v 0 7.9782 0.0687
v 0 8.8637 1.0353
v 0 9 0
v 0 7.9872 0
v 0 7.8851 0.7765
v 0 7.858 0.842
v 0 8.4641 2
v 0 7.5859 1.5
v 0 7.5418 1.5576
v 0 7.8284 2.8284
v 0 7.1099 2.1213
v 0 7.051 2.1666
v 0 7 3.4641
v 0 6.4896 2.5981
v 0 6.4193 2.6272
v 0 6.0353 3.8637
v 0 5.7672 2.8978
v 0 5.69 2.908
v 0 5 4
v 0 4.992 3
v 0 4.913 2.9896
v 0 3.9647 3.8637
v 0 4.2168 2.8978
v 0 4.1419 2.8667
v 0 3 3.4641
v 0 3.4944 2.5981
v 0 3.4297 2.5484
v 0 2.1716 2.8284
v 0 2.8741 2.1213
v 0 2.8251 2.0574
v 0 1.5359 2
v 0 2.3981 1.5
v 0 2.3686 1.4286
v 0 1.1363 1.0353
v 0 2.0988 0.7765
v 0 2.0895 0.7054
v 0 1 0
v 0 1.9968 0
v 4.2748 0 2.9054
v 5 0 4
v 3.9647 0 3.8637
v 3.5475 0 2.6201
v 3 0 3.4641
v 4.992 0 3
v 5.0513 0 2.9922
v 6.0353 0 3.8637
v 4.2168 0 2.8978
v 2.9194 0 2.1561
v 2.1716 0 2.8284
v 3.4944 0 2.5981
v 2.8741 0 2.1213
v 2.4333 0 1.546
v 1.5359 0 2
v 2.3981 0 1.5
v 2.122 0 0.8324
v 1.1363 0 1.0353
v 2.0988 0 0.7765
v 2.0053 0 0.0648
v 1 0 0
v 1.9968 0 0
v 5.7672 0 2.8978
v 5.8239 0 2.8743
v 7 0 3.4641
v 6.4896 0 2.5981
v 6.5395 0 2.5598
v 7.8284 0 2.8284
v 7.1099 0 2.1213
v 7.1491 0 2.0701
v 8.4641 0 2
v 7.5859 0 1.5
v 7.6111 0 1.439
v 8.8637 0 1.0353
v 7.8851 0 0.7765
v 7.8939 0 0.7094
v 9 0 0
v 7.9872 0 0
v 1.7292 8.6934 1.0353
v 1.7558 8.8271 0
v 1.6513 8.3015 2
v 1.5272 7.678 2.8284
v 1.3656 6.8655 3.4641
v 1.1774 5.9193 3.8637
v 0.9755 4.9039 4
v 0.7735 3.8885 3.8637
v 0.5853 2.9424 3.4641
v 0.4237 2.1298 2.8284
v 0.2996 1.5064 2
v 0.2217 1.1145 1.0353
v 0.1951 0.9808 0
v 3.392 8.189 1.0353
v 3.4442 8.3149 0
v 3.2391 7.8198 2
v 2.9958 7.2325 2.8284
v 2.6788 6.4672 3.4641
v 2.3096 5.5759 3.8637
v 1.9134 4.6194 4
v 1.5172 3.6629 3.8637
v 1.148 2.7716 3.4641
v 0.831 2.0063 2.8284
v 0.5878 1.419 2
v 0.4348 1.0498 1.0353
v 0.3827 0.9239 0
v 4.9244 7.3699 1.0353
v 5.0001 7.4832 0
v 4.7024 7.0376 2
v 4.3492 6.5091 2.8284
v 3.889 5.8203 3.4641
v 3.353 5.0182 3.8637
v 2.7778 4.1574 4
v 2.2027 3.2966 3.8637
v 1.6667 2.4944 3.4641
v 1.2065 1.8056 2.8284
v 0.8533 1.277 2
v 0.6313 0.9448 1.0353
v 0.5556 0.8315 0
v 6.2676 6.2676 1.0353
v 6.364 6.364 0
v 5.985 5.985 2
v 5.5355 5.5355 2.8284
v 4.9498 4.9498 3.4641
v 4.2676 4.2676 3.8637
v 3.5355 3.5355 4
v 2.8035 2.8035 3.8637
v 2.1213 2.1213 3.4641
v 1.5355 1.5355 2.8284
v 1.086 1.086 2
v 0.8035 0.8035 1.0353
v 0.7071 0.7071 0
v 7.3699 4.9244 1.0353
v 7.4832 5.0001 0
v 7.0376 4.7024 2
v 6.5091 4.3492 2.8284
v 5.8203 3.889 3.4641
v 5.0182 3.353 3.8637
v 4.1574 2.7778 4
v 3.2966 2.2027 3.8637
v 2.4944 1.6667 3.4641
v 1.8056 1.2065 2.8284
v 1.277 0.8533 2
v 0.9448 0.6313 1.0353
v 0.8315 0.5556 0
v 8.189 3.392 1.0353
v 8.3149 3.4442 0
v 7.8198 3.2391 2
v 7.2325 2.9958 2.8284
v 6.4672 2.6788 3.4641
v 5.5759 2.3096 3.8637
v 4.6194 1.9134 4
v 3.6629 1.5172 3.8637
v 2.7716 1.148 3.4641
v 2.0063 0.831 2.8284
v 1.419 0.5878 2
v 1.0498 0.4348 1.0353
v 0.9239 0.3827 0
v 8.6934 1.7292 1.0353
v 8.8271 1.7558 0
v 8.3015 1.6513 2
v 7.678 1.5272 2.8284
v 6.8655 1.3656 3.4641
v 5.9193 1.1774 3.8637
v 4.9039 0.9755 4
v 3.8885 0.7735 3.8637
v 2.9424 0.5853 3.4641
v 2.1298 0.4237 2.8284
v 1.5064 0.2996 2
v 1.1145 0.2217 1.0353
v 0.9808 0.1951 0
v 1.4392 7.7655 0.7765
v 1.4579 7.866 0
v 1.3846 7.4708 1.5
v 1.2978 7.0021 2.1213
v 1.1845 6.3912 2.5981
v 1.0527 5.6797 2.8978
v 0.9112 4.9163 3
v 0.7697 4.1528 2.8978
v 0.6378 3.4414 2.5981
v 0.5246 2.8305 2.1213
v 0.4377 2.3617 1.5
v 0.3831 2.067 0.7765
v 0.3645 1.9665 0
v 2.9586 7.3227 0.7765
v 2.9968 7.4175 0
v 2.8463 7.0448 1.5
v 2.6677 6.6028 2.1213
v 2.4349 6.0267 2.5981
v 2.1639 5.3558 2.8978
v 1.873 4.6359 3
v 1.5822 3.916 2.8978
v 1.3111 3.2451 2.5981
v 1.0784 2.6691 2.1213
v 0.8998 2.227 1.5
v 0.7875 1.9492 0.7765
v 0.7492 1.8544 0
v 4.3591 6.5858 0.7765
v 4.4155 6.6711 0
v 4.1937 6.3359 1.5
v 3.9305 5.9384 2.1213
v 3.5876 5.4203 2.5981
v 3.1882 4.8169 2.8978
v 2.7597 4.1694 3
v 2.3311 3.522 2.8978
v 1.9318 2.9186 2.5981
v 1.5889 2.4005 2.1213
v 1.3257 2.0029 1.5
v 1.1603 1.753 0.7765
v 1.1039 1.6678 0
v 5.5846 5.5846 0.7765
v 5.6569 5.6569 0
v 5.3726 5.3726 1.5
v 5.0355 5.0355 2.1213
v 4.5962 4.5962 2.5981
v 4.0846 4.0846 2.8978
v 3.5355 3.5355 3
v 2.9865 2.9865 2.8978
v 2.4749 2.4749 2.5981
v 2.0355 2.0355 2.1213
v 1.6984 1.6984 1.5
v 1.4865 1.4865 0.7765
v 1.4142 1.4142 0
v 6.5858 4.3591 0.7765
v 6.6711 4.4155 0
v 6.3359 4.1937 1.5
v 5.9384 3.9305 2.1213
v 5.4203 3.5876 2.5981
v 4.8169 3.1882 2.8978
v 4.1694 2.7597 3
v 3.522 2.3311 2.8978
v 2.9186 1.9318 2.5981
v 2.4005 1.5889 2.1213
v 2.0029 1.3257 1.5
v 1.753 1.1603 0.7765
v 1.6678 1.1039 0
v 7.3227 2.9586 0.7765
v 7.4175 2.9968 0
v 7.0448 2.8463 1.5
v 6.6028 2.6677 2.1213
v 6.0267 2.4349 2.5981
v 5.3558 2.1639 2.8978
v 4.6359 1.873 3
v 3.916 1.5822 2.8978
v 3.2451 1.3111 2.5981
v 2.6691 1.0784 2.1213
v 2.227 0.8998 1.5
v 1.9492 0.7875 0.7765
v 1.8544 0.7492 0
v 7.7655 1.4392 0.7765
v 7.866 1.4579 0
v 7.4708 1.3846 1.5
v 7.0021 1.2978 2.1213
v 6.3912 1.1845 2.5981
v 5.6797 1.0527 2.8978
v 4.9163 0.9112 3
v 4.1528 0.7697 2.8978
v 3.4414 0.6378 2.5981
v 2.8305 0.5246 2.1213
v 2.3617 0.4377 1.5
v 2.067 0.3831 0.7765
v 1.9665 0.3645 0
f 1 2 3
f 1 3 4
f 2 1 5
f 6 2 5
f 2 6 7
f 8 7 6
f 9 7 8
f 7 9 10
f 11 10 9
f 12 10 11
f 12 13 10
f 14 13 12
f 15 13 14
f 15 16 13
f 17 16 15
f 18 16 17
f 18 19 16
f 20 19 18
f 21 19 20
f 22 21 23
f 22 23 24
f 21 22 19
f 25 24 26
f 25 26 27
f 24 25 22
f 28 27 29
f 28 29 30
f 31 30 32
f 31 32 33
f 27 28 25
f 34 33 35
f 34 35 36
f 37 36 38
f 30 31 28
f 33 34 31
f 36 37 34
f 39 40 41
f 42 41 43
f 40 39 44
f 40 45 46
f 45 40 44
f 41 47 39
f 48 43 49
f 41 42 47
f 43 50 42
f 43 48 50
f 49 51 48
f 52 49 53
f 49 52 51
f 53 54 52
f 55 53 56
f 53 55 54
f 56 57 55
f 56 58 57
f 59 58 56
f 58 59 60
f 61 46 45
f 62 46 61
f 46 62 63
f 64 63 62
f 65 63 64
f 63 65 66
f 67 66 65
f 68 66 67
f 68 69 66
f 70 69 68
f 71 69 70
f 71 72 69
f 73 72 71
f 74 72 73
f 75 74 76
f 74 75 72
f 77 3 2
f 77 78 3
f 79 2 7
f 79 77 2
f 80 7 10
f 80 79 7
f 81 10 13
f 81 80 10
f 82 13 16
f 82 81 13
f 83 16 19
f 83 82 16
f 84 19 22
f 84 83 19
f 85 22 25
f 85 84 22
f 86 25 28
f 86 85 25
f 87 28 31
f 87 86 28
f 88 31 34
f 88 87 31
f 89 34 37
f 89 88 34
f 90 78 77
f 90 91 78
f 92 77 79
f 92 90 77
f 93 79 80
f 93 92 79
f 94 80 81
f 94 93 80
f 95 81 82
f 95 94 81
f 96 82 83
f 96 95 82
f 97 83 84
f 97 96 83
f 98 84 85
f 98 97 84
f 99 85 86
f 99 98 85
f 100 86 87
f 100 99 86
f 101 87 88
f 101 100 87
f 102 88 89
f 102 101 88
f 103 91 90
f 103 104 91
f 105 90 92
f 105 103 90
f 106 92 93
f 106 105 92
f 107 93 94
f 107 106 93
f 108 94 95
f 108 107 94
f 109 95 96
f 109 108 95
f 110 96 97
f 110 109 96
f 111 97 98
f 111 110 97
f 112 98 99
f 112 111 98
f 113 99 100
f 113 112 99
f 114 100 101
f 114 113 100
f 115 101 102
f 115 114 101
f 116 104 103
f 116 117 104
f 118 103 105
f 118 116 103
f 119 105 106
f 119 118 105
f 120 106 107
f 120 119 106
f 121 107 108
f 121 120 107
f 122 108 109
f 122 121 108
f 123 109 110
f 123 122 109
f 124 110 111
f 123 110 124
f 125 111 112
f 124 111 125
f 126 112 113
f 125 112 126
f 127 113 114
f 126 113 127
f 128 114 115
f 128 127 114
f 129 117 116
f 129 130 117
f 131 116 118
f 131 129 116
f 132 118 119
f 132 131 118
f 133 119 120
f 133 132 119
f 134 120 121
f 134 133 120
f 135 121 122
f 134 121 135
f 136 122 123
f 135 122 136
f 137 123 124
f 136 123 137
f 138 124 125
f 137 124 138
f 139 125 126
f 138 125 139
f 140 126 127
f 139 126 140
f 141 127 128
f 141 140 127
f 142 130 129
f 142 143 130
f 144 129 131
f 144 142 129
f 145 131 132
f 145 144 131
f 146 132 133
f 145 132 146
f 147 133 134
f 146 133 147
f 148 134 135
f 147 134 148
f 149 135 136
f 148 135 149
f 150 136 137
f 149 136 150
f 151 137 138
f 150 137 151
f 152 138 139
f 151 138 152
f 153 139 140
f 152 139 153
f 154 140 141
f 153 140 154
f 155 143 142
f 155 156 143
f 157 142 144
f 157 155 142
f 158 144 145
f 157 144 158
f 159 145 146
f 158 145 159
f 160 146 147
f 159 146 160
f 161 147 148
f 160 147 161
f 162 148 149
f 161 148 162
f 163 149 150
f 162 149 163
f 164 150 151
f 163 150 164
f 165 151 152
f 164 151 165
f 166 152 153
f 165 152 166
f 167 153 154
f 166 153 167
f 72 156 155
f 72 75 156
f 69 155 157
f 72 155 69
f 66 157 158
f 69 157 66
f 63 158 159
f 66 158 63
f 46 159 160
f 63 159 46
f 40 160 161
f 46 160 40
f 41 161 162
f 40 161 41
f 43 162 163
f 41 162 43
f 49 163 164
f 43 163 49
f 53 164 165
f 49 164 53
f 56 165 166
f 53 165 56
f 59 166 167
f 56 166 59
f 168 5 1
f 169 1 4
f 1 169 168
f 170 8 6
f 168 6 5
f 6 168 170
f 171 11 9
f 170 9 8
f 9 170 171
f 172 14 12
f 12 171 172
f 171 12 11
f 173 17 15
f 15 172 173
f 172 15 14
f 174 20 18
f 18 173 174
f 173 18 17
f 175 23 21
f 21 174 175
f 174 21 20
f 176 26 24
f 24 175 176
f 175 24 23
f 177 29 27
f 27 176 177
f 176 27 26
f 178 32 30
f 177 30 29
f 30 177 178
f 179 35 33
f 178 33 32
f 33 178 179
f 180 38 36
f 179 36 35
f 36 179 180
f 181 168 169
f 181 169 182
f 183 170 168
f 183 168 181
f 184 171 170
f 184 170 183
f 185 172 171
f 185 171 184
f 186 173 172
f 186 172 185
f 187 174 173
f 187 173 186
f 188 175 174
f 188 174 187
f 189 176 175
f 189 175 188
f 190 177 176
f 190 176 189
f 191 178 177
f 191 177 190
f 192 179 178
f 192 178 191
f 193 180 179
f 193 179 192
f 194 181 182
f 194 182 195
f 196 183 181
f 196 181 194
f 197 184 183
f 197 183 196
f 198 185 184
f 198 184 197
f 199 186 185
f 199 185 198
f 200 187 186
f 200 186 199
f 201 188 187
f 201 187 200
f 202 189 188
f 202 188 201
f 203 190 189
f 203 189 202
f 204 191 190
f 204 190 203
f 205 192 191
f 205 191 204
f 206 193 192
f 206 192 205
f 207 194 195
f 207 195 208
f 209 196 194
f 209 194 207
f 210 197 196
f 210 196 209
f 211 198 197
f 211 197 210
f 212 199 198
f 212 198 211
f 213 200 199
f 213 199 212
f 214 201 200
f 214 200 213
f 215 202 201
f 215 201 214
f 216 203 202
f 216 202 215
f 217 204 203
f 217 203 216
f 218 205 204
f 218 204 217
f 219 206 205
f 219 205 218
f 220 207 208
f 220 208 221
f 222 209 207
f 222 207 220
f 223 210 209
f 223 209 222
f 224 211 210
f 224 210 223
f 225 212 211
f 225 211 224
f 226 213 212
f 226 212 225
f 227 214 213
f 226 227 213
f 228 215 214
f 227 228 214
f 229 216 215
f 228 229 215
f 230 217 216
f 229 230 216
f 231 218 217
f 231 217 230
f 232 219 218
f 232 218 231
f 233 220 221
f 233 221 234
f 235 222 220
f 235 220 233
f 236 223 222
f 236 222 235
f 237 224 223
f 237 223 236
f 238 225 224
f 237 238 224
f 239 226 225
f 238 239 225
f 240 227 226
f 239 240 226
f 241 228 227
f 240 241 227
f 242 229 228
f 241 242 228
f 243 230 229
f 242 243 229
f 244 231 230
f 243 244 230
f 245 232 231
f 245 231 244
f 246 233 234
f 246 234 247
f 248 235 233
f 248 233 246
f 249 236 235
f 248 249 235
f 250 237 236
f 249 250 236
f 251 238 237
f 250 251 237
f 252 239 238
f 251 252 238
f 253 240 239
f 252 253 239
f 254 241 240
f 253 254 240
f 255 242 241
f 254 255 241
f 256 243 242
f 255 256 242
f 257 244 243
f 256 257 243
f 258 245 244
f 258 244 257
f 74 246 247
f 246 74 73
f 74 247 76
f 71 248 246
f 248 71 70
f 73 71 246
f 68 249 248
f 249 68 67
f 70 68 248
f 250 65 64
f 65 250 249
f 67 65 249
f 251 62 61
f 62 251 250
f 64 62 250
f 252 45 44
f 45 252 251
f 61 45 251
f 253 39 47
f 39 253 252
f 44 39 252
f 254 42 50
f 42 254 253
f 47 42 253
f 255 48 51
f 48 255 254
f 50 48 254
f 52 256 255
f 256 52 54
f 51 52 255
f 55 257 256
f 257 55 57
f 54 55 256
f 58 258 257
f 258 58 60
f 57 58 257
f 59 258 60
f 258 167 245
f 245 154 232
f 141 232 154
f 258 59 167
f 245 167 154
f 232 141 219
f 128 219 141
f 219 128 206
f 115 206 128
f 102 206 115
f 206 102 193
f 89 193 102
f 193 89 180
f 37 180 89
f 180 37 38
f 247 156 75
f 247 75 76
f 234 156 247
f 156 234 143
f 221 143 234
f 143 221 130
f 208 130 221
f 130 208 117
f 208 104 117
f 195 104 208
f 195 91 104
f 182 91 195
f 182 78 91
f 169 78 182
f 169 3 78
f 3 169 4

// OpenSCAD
// file: ../build_environments.scad
// build_environments.scad: modules to build level sections
//

module pool(diameter=10.0, wall_height=2.0, step_width=3.0, connections=[])
{
    difference() {
        union() {
        difference() {
            cylinder(h=0.5,r1=diameter+step_width,r2=diameter+step_width,$fn=48);
            translate([0,0,-0.1])
                cylinder(h=0.7,r1=diameter,r2=diameter,$fn=48);
        }
        difference() {
            cylinder(h=wall_height,r1=diameter+step_width+1.0,r2=diameter+step_width+1.0,$fn=48);
            translate([0,0,-0.1])
                cylinder(h=wall_height+0.2,r1=diameter+step_width,r2=diameter+step_width,$fn=48);
        }
        }
    
        for (c = connections)
        {
            rotate([0,90,0]) {
                angle = atan2(c[1],c[0]);
                rotate([-angle,0,0]) {
                    cylinder(h=diameter+5.0,r1=c[2],r2=c[2],$fn=48);
                }
            }
        }
    }
}

module straight(length=10.0, width=2.0, dy1=0.0, dy2=0.0, dz=0.0)
{
    dims = [0, 0, 0, 0, 0, (dz/length)];
    matrix = [
        [ 1, dims[0], dims[1], 0 ],
        [ dims[2], 1, dims[4], 0 ],
        [ dims[5], dims[3], 1, 0 ],
        [ 0, 0, 0, 1 ]
    ];
    multmatrix(matrix)
    difference() {
        translate([dy1,0,0])
        union() {
            rotate([0,90,0]) {
                difference() {
                    cylinder(h=(length-dy1-dy2),r1=width+1.0,r2=width+1.0,$fn=24);
                    translate([0,0,-0.1])
                        cylinder(h=(length-dy1-dy2+0.2),r1=width,r2=width,$fn=24);
                }
                difference() {
                    cylinder(h=1.0,r1=width+2.0,r2=width+2.0,$fn=24);
                    translate([0,0,-0.1])
                        cylinder(h=1.2,r1=width,r2=width,$fn=24);
                }
                translate([0,0,(length-dy1-dy2)-1.0]) {
                    difference() {
                        cylinder(h=1.0,r1=width+2.0,r2=width+2.0,$fn=24);
                        translate([0,0,-0.1])
                            cylinder(h=1.2,r1=width,r2=width,$fn=24);
                    }
                }
            }
        }
        translate([0,0,-(2*width+4.0)/2])
            cube([3*length,3*length,2*width+4.0],center=true);
    }
}

module curve(p0=[0,0], center=[0,0], dir=1, angle=0.0, width=2.0)
{
    radius = sqrt((p0[0]-center[0])*(p0[0]-center[0]) + (p0[1]-center[1])*(p0[1]-center[1]));
    if (dir == 0) {
        difference() {
            rotate([0,0,-90])
            difference() {
                rotate_extrude(angle = angle, convexity = 10, $fn=32)
                    translate([radius, 0, 0])
                        circle(r = width+1.0,$fn=24);
                rotate([0,0,-1.0])
                    rotate_extrude(angle = angle+2.0, convexity = 10, $fn=32)
                        translate([radius, 0, 0])
                            circle(r = width,$fn=24);
            }
            translate([0,0,-(2*width+4.0)/2])
                cube([5*radius,5*radius,2*width+4.0],center=true);
        }
    }
    else {
        difference() {
            rotate([0,0,90])
            difference() {
                rotate_extrude(angle = -angle, convexity = 10, $fn=32)
                    translate([radius, 0, 0])
                        circle(r = width+1.0,$fn=24);
                rotate([0,0,1.0])
                    rotate_extrude(angle = -angle-2.0, convexity = 10, $fn=32)
                        translate([radius, 0, 0])
                            circle(r = width,$fn=24);
            }
            translate([0,0,-(2*width+4.0)/2])
                cube([5*radius,5*radius,2*width+4.0],center=true);
        }
    }

}

// test pool
//pool(diameter=12.0000, wall_height=3.0000, step_width=3.0000, connections=[[0.0000,-26.0000,2.0000], [23.6074,0.0000,2.0000]]);

// test straight, slope
//straight(length=26.0000, width=2.0000, dy1=11.8322, dy2=6.7082, dz=0.0000);
//straight(length=29.1549, width=12.0000, dy1=0.0000, dy2=0.0000, dz=-15.0000);

// test curve
//curve(p0=[23.6074, 0.0000], center=[23.6074, 5.0000], dir=0, angle=60.1011, width=2.0000);
//curve(p0=[33.6426, 12.4219], center=[37.9771, 9.9295], dir=1, angle=120.4627, width=2.0000);
// main file
use <../build_environments.scad>;
curve(p0=[-152.0000, 129.0000], center=[-147.0000, 129.0000], dir=1, angle=90.0000, width=3.0000);
